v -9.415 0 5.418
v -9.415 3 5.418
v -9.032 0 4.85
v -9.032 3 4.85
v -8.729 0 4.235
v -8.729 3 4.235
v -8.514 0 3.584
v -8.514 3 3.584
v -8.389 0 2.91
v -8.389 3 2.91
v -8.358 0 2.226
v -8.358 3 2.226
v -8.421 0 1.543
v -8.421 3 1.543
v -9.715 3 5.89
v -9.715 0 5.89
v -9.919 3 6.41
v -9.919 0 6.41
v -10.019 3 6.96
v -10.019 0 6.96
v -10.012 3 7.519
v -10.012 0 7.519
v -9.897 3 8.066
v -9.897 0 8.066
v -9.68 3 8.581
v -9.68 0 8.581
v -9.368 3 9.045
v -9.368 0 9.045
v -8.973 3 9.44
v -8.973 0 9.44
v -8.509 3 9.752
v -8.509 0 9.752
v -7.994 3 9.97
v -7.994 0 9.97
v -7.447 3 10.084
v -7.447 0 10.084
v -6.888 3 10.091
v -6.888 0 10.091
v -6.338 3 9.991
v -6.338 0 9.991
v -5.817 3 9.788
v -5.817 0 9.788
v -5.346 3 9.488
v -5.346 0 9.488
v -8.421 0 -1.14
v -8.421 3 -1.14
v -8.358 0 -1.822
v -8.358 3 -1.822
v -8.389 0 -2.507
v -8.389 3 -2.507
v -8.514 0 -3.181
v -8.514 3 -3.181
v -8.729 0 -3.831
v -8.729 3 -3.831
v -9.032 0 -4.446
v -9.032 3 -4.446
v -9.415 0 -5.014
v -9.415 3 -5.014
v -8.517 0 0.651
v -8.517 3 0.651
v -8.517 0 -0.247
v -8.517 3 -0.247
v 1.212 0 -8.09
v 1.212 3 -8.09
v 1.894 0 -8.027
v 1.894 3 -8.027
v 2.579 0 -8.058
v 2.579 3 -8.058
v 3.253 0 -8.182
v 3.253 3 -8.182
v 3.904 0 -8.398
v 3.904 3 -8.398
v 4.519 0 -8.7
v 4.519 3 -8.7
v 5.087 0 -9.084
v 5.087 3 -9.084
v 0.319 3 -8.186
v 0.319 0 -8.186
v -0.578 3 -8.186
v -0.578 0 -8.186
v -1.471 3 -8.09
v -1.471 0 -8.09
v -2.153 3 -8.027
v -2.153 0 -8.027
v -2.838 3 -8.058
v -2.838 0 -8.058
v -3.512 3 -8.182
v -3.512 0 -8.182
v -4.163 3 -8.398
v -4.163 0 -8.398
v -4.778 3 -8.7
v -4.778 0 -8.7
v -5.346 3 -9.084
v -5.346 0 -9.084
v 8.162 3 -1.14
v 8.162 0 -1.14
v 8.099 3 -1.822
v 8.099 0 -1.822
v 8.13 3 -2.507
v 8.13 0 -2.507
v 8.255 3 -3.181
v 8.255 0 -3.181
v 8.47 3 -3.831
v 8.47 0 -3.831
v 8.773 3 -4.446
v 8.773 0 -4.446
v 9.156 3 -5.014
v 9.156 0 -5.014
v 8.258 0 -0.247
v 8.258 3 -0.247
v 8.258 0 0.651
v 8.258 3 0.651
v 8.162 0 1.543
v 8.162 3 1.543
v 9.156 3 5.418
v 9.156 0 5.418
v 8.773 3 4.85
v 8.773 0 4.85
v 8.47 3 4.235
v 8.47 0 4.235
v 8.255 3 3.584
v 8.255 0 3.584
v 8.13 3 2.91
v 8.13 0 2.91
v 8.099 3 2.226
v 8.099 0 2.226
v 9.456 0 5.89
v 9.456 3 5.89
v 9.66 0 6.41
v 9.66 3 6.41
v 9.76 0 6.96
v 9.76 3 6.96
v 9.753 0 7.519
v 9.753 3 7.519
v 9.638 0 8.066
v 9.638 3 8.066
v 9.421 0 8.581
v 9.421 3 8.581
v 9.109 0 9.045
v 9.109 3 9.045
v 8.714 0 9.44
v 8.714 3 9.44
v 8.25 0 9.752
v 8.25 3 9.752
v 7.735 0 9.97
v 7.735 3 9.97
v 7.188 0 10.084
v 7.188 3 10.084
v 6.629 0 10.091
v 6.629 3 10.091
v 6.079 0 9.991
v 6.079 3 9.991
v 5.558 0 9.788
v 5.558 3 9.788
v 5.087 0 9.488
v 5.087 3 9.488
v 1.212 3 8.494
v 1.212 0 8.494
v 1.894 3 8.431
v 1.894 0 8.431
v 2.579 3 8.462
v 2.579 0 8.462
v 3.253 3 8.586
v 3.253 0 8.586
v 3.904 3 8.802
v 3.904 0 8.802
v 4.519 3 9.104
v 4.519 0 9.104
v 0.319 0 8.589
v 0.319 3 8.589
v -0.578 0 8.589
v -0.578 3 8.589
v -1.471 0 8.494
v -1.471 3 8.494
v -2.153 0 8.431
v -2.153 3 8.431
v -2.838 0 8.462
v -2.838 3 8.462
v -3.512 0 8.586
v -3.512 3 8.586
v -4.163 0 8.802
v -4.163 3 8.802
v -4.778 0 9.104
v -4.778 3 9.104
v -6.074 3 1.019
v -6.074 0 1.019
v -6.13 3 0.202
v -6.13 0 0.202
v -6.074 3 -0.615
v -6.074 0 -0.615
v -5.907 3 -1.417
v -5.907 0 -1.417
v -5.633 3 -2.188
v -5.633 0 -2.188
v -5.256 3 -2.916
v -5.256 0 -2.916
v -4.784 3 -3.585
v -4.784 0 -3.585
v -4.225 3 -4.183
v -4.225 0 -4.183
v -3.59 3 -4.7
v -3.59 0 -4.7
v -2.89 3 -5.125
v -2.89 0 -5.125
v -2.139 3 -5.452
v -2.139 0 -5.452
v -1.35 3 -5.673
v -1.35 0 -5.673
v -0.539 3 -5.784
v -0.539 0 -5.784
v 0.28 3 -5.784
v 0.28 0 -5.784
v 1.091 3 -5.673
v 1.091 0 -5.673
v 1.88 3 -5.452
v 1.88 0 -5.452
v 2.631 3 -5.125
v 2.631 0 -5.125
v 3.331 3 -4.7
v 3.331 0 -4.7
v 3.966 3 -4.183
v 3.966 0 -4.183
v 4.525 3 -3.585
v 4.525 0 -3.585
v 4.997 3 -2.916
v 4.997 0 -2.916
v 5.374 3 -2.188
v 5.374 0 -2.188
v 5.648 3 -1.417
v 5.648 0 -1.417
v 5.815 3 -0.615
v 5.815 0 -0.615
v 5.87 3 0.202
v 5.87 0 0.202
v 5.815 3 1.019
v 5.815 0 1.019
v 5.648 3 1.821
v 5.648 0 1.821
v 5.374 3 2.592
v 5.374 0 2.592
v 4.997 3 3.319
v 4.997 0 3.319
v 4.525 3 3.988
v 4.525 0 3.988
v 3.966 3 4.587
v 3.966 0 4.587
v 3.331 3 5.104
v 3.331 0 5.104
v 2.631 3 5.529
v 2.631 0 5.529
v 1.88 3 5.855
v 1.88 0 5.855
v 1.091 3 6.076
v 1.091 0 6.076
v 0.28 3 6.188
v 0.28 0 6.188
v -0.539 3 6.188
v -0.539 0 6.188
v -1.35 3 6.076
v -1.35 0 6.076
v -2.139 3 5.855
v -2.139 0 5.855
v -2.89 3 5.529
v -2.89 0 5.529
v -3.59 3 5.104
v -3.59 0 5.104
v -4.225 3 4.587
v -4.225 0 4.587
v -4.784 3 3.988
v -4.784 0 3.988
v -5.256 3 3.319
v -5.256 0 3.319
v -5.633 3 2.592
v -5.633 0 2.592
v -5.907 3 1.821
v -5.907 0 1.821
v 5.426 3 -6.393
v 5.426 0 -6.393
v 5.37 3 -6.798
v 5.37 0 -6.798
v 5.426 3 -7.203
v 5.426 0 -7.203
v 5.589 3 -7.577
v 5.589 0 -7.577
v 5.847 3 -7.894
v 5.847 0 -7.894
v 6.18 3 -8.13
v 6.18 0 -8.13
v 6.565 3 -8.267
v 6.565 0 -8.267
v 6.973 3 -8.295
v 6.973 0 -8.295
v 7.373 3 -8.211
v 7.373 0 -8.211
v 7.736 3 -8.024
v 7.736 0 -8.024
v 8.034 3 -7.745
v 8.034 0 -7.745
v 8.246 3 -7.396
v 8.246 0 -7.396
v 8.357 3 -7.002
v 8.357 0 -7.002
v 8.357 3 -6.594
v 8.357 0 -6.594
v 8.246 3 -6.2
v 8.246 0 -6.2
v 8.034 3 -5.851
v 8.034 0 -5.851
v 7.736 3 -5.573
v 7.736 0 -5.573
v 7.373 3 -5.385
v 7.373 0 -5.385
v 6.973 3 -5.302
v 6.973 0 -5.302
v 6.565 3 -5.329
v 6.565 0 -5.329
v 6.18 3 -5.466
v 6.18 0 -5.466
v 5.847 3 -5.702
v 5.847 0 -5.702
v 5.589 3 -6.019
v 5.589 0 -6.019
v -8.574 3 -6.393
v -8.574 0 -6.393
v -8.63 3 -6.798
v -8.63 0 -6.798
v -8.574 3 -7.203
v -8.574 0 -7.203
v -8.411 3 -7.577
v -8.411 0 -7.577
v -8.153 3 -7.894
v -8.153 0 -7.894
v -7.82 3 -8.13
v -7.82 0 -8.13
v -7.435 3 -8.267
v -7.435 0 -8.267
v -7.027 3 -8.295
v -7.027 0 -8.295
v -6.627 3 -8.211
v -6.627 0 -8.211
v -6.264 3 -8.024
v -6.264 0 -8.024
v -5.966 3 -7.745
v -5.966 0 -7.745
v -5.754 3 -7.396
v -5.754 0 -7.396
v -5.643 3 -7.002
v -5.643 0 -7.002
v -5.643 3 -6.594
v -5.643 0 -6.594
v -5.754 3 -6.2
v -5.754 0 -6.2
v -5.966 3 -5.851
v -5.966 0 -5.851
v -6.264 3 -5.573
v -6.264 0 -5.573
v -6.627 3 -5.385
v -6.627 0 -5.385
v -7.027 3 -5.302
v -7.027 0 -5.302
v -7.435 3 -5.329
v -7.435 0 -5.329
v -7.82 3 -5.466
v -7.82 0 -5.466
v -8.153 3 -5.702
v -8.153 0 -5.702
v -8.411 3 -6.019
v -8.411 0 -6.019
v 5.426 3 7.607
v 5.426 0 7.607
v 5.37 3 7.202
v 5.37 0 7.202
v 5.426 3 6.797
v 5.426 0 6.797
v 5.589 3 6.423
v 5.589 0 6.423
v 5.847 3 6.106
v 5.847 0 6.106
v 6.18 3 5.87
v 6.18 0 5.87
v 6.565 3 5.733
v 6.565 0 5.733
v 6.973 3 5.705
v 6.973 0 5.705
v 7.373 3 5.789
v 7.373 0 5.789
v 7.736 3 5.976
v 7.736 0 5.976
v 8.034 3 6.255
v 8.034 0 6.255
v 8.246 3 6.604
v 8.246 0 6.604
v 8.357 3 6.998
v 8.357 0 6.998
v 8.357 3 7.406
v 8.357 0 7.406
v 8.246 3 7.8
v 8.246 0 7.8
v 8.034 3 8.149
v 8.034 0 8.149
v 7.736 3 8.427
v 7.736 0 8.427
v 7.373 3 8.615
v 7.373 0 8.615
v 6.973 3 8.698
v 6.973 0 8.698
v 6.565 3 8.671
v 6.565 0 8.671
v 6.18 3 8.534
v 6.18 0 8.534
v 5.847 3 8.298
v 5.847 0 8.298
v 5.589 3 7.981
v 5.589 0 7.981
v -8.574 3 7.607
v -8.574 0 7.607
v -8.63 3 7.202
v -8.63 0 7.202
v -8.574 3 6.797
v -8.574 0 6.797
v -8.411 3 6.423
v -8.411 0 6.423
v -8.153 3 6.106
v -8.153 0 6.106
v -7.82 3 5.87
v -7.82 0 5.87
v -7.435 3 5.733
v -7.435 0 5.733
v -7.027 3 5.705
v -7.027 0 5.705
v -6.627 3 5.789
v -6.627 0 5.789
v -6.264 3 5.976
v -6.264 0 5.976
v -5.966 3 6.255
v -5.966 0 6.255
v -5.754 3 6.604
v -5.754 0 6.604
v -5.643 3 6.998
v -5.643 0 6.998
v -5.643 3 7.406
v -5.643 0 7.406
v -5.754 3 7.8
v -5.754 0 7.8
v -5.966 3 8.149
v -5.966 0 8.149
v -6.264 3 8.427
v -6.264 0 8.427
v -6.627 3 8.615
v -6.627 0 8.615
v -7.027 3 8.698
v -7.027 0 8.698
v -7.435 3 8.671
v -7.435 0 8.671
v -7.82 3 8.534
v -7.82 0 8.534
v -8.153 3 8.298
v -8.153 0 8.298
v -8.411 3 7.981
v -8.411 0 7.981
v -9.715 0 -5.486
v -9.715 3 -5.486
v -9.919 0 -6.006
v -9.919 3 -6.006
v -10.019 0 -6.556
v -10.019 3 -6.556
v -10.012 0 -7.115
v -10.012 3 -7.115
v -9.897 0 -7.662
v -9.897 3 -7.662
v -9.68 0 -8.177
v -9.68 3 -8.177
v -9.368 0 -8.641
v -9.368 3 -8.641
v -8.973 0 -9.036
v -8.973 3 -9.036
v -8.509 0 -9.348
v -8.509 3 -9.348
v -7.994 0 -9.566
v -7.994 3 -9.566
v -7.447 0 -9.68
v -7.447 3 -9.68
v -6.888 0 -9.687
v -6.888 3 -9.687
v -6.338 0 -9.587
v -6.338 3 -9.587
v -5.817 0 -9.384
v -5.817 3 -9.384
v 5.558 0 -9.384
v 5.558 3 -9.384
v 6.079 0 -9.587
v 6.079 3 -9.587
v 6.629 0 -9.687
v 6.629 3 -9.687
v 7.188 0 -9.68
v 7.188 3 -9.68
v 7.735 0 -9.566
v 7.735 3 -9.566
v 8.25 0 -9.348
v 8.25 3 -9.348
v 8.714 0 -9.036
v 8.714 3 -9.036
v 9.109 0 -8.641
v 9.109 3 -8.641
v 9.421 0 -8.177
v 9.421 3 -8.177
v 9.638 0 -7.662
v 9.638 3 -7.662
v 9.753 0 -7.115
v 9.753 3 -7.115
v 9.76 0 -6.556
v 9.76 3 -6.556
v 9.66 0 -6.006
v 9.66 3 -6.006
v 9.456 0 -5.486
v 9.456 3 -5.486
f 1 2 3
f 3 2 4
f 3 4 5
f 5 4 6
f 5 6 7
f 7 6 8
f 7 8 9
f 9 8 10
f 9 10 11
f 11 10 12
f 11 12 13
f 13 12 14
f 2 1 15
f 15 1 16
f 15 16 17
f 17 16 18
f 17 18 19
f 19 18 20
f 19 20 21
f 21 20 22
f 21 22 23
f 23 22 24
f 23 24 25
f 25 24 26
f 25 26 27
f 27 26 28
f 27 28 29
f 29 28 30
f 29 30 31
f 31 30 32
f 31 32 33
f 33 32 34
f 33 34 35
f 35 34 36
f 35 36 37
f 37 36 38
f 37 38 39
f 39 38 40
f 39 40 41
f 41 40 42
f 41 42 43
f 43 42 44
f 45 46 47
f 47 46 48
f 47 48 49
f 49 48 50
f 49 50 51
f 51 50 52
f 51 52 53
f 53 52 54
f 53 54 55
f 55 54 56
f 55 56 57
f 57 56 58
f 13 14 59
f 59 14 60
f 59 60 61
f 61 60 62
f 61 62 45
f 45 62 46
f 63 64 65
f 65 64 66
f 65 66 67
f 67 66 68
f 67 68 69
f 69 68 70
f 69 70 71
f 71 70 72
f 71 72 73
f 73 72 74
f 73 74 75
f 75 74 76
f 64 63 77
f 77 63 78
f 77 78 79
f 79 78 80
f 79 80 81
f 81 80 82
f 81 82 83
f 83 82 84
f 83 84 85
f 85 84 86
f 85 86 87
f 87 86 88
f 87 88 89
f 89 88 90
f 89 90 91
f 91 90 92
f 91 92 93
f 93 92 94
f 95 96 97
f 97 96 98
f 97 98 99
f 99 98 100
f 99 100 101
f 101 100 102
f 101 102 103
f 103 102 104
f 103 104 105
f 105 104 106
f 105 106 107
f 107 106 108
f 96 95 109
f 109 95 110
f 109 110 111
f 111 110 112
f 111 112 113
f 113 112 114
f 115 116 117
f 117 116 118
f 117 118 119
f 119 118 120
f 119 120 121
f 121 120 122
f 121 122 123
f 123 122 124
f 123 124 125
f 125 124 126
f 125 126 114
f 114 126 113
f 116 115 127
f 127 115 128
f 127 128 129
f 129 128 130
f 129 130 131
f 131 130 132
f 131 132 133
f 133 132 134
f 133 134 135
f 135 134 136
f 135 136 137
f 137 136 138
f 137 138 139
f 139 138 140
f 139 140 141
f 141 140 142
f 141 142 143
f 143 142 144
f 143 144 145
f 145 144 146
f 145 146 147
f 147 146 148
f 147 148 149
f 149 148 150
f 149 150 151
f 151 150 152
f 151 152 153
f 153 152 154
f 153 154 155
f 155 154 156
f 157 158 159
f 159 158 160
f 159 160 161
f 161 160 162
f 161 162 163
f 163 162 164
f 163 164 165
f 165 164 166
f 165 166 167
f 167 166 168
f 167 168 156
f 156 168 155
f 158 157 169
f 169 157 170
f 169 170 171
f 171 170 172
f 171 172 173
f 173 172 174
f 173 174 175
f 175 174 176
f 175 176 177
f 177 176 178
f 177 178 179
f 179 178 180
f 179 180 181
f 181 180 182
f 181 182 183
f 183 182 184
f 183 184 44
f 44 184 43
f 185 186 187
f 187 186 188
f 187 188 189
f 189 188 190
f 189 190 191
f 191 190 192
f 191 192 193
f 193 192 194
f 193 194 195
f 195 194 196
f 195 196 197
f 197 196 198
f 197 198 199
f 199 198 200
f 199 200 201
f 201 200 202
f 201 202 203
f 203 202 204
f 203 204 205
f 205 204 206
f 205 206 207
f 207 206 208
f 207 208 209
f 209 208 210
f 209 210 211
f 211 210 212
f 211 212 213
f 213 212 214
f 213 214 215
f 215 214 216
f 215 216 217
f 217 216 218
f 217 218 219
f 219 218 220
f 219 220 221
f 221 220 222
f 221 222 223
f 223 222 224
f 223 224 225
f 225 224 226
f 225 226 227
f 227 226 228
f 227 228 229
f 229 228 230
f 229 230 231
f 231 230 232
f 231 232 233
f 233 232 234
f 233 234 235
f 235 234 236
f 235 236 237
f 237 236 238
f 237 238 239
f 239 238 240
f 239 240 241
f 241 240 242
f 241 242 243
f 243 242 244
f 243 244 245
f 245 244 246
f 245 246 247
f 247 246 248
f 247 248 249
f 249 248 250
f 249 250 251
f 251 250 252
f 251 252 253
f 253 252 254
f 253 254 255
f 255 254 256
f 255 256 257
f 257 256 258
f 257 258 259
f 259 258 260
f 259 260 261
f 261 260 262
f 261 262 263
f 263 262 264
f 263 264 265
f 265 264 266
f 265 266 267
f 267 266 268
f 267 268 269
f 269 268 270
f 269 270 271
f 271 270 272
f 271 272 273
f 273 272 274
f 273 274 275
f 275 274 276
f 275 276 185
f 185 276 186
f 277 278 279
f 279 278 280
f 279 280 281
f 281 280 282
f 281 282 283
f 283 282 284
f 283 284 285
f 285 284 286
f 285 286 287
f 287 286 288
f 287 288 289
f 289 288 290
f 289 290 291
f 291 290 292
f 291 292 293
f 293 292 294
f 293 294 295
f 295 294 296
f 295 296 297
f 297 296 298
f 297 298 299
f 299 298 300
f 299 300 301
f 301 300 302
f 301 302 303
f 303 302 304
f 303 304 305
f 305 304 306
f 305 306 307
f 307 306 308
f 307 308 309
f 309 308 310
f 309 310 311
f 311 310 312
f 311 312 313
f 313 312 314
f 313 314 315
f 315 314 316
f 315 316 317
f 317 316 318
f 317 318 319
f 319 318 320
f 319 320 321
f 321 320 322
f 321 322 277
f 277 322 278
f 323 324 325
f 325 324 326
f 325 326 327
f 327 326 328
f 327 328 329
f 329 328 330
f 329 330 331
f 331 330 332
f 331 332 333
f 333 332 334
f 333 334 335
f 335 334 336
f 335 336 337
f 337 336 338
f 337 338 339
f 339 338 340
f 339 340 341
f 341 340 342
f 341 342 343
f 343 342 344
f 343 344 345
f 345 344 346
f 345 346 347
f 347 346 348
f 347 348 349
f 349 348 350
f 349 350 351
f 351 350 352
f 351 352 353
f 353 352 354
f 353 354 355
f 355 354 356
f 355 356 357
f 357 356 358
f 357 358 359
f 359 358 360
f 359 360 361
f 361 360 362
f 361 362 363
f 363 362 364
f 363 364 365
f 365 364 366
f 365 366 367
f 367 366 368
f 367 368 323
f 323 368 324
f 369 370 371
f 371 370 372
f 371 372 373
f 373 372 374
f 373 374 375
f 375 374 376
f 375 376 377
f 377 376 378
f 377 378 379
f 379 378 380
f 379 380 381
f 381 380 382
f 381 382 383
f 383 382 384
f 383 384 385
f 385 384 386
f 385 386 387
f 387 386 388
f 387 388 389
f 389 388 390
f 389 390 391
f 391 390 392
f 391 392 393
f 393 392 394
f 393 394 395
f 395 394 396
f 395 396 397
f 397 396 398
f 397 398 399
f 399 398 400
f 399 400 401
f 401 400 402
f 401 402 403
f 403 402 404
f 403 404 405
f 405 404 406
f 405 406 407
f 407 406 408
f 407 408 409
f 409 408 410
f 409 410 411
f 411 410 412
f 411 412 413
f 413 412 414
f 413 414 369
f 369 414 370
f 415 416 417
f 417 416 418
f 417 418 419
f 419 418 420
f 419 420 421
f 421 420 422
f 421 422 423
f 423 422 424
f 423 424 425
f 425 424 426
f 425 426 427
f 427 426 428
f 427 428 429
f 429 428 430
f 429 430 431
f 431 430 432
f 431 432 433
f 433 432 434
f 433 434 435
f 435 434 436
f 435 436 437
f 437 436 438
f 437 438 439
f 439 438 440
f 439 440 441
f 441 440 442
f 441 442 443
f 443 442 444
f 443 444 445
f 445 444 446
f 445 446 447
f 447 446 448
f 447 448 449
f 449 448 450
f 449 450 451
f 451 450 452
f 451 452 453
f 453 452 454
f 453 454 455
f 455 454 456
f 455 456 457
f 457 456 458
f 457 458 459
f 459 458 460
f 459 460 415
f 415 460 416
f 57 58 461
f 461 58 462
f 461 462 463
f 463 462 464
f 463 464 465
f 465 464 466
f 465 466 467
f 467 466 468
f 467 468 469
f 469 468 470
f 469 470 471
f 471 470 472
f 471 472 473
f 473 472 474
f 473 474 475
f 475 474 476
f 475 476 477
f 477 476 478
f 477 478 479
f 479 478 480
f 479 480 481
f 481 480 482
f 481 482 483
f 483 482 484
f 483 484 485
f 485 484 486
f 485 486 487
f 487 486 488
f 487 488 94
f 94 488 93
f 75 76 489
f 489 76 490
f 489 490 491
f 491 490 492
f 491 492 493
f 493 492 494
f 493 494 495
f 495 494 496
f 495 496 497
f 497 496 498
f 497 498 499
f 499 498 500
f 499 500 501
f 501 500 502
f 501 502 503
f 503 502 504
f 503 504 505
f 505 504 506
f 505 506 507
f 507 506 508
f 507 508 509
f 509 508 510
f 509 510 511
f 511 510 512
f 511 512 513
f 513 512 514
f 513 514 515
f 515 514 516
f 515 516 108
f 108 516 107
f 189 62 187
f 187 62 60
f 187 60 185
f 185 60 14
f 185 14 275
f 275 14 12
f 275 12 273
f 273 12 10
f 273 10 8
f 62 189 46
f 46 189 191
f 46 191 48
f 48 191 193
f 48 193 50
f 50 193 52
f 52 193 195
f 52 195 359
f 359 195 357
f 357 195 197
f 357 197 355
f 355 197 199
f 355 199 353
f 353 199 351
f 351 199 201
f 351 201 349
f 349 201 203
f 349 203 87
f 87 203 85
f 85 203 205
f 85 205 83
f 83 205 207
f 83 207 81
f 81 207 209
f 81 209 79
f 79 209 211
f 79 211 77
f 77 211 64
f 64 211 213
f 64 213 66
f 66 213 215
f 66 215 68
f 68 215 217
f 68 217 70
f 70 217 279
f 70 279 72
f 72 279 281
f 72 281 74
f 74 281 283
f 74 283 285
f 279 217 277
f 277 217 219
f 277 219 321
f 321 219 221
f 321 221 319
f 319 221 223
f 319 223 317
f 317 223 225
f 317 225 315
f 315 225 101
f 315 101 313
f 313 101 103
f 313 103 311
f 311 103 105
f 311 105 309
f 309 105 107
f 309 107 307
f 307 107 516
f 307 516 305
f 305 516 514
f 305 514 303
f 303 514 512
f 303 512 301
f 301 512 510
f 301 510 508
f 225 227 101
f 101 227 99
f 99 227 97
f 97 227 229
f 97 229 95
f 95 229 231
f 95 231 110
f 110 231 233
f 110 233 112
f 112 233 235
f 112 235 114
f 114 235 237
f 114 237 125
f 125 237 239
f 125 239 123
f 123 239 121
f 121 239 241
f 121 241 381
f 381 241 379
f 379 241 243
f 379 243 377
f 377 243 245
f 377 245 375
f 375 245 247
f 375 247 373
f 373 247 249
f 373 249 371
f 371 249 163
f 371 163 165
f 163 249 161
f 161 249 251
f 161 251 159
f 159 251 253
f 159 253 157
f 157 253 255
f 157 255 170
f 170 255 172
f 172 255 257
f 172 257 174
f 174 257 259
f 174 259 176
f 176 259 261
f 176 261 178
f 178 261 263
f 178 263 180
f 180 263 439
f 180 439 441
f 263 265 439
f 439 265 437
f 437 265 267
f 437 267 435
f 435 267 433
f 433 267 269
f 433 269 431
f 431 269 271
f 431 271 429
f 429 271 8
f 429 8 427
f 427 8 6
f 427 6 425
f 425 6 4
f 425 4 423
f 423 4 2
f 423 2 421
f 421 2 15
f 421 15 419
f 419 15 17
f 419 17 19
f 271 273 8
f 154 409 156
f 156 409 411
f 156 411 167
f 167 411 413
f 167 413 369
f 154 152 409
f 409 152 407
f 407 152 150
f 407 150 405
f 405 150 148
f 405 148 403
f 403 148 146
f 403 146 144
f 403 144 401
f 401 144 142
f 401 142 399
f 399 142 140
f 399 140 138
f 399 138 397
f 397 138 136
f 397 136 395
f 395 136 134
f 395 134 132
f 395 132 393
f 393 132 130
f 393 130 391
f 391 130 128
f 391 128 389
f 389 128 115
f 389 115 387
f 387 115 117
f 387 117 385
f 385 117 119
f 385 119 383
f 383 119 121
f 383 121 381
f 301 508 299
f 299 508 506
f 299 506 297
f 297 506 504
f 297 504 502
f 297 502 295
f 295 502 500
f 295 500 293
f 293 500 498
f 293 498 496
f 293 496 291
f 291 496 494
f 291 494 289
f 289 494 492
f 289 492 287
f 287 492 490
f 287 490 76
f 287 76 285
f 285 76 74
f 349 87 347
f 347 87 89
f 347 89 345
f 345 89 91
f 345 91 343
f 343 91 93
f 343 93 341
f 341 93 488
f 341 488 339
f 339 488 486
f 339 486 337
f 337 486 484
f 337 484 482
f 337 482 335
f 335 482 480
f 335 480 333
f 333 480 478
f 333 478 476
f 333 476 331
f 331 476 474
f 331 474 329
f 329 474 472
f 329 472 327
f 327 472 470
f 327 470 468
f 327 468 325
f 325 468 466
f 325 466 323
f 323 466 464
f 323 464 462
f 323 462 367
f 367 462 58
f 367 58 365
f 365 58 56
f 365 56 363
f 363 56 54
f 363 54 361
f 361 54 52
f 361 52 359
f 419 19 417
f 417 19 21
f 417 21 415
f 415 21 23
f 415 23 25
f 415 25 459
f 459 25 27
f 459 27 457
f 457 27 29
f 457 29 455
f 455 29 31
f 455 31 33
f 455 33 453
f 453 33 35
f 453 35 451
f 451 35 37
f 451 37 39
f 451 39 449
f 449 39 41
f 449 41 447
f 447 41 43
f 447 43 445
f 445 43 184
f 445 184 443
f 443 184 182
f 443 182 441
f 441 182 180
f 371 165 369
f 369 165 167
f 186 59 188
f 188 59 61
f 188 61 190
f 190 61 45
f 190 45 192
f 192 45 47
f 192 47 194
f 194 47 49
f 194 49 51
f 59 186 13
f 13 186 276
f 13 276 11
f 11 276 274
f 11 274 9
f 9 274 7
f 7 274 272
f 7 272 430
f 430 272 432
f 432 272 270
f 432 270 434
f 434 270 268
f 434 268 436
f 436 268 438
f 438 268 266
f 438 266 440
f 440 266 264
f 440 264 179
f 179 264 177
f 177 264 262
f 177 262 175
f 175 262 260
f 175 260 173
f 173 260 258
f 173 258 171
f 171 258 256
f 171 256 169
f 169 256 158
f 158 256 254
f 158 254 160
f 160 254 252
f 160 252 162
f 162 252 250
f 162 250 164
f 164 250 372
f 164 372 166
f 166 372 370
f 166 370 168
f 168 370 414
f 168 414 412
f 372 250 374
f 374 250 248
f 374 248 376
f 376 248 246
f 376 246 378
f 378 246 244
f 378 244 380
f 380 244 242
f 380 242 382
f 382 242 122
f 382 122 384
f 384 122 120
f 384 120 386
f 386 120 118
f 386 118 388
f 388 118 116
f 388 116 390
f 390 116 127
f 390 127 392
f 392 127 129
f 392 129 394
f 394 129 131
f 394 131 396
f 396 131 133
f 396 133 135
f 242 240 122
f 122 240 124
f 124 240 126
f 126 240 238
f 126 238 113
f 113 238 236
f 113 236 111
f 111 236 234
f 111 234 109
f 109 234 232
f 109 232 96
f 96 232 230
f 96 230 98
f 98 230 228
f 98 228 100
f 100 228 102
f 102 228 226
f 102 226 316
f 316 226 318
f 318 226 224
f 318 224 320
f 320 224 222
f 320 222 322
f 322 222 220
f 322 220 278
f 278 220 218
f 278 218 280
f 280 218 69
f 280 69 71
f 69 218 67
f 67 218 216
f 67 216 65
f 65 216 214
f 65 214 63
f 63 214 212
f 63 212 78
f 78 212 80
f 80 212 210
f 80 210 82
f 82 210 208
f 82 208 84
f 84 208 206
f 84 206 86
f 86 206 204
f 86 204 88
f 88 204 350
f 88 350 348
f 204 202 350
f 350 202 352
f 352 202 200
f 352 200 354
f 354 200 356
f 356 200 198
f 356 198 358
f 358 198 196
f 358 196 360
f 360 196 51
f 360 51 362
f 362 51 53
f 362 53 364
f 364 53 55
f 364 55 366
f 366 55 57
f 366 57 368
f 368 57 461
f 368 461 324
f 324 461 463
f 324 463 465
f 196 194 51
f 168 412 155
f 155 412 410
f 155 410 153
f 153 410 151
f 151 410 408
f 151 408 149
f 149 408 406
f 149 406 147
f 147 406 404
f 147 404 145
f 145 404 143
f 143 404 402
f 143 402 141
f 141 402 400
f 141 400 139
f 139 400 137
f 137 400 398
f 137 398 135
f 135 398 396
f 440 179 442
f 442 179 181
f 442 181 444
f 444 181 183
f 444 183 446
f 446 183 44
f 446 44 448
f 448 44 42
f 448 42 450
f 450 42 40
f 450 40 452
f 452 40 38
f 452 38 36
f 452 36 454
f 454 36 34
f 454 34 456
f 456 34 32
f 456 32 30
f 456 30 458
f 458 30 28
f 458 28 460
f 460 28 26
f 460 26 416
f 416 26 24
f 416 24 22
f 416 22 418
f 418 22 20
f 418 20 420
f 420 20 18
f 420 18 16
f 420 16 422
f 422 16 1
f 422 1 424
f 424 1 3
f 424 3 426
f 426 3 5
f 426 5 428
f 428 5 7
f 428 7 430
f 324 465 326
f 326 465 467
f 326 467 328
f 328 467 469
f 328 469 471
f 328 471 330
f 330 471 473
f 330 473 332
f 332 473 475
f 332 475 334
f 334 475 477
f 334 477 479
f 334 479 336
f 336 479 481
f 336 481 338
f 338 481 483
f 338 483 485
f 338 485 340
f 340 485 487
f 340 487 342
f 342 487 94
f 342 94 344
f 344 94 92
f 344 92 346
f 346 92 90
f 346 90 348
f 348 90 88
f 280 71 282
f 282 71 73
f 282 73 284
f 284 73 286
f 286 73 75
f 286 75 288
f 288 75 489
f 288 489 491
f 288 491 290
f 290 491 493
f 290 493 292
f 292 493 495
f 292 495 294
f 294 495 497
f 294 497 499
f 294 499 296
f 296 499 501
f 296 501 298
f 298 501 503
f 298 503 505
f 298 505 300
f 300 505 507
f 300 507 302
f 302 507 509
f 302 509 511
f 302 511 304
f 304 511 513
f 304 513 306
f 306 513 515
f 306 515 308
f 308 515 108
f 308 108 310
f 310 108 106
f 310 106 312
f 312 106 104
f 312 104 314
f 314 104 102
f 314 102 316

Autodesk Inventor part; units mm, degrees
ref_plane "YZ Plane" through (0, 0, 0) normal (1, 0, 0) x (0, 1, 0)
ref_plane "XZ Plane" through (0, 0, 0) normal (0, 1, 0) x (-1, 0, 0)
ref_plane "XY Plane" through (0, 0, 0) normal (0, 0, 1) x (1, 0, 0)
sketch "Эскиз1" plane through (0, 0, 0) normal (0, 1, 0) x (-1, 0, 0)
  circle A0 centre (0.1295, 0.2019) radius 7
  circle A1 centre (-6.8705, 7.2019) radius 1.5
  circle A2 centre (7.1295, 7.2019) radius 1.5
  circle A3 centre (7.1295, -6.7981) radius 1.5
  circle A4 centre (-6.8705, -6.7981) radius 1.5
  line L0 (-6.8705, -10.8093) -> (-6.8705, 13.8282) construction
  line L1 (14.3213, 7.2019) -> (-16.097, 7.2019) construction
  line L2 (7.1295, -11.068) -> (7.1295, 16.1729) construction
  arc A5 (6.5047, 14.6631) -> (7.1295, 16.1729) centre (4.9928, 16.1729) ccw construction
  line L3 (12.5583, -6.7981) -> (-15.6188, -6.7981) construction
  circle A6 centre (7.1295, 7.2019) radius 2.8995
  circle A7 centre (-6.8705, 7.2019) radius 2.8995
  circle A8 centre (-6.8705, -6.7981) radius 2.8995
  circle A9 centre (7.1295, -6.7981) radius 2.8995
  arc A10 (0.5599, -6.4772) -> (-0.2768, -6.4772) centre (0.1416, -8.4329) ccw
  line L4 (5.6295, -6.7981) -> (0.1295, -6.7981)
  line L5 (7.1295, -5.2981) -> (7.1295, 0.2019)
  line L6 (7.1295, 5.7019) -> (7.1295, 0.2019)
  line L7 (5.6295, 7.2019) -> (-5.3705, 7.2019)
  line L8 (-6.8705, 5.7019) -> (-6.8705, -5.2981)
  line L9 (-5.3705, -6.7981) -> (0.1295, -6.7981)
  circle A11 centre (0.1295, 0.2019) radius 8.3995
  circle A12 centre (0.1295, 0.2019) radius 6
  point P0 (-3.971, 7.2019)
  point P1 (-6.8705, 4.3024)
  point P2 (-6.8705, -3.8986)
  point P3 (-3.971, -6.7981)
  point P4 (4.23, -6.7981)
  point P5 (7.1295, -3.8986)
  point P6 (7.1295, 4.3024)
  point P7 (4.23, 7.2019)
  point P8 (4.2478, 7.5225)
  point P9 (-3.9888, 7.5225)
  point P10 (-7.1911, 4.3202)
  point P11 (-7.1911, -3.9164)
  point P12 (-3.9888, -7.1187)
  point P13 (4.2478, -7.1187)
  point P14 (7.4501, -3.9164)
  point P15 (7.4501, 4.3202)
  dimension "d23" = 14
  dimension "d24" = 3
  dimension "d25" = 3
  dimension "d26" = 3
  dimension "d27" = 3
  dimension "d28" = 2
  dimension "d40" = 12
extrude "Выдавливание1" add sketch "Эскиз1" along normal blind 3 contours L5 A9 A0 | L6 A6 A11 A9 L5 | A0 A6 L6 | A0 L7 A6 | A6 L7 A11 L6 | A9 L4 A0 | A9 L5 A11 L4 | A9 A11 L5 | L6 A11 A6 | L7 A7 A11 A6 | A0 A7 L7 | A6 A11 L7 | L9 A8 A0 | L4 A9 A11 A8 L9 | L4 A11 A9 | A9 A11 L4 A3 L5 | L5 A3 A11 | A11 L6 A2 L7 A6 | A11 A2 L6 | A0 L8 A7 | A7 L8 A11 L7 | L7 A11 A7 | L7 A2 A11 | A8 L8 A0 | A8 L9 A11 L8 | A8 A11 L9 | A11 A3 L4 | L8 A8 A11 A7 | A7 A11 L8 | A11 L7 A1 L8 A7 | A11 A1 L7 | L8 A11 A8 | A8 A11 L8 A4 L9 | L9 A4 A11 | L8 A1 A11 | A11 A4 L8
extrude "Выдавливание3" add sketch "Эскиз1" along normal up to surface (3 mm away) contours A0
fillet "Сопряжение грани1" radius 5 2 edges at (-4.2478, 1.5, 7.5225) (-7.4501, 1.5, 4.3202)
fillet "Сопряжение грани2" radius 5 2 edges at (3.9888, 1.5, 7.5225) (7.1911, 1.5, 4.3202)
fillet_without_effect "Сопряжение грани3"
fillet "Сопряжение грани4" radius 5 2 edges at (7.1911, 1.5, -3.9164) (3.9888, 1.5, -7.1187)
fillet "Сопряжение грани5" radius 5 2 edges at (-4.2478, 1.5, -7.1187) (-7.4501, 1.5, -3.9164)
fillet_without_effect "Сопряжение грани6"
fillet_without_effect "Сопряжение грани7"
fillet_without_effect "Сопряжение грани8"
properties part number "крепление подшипника_1_CPY"
